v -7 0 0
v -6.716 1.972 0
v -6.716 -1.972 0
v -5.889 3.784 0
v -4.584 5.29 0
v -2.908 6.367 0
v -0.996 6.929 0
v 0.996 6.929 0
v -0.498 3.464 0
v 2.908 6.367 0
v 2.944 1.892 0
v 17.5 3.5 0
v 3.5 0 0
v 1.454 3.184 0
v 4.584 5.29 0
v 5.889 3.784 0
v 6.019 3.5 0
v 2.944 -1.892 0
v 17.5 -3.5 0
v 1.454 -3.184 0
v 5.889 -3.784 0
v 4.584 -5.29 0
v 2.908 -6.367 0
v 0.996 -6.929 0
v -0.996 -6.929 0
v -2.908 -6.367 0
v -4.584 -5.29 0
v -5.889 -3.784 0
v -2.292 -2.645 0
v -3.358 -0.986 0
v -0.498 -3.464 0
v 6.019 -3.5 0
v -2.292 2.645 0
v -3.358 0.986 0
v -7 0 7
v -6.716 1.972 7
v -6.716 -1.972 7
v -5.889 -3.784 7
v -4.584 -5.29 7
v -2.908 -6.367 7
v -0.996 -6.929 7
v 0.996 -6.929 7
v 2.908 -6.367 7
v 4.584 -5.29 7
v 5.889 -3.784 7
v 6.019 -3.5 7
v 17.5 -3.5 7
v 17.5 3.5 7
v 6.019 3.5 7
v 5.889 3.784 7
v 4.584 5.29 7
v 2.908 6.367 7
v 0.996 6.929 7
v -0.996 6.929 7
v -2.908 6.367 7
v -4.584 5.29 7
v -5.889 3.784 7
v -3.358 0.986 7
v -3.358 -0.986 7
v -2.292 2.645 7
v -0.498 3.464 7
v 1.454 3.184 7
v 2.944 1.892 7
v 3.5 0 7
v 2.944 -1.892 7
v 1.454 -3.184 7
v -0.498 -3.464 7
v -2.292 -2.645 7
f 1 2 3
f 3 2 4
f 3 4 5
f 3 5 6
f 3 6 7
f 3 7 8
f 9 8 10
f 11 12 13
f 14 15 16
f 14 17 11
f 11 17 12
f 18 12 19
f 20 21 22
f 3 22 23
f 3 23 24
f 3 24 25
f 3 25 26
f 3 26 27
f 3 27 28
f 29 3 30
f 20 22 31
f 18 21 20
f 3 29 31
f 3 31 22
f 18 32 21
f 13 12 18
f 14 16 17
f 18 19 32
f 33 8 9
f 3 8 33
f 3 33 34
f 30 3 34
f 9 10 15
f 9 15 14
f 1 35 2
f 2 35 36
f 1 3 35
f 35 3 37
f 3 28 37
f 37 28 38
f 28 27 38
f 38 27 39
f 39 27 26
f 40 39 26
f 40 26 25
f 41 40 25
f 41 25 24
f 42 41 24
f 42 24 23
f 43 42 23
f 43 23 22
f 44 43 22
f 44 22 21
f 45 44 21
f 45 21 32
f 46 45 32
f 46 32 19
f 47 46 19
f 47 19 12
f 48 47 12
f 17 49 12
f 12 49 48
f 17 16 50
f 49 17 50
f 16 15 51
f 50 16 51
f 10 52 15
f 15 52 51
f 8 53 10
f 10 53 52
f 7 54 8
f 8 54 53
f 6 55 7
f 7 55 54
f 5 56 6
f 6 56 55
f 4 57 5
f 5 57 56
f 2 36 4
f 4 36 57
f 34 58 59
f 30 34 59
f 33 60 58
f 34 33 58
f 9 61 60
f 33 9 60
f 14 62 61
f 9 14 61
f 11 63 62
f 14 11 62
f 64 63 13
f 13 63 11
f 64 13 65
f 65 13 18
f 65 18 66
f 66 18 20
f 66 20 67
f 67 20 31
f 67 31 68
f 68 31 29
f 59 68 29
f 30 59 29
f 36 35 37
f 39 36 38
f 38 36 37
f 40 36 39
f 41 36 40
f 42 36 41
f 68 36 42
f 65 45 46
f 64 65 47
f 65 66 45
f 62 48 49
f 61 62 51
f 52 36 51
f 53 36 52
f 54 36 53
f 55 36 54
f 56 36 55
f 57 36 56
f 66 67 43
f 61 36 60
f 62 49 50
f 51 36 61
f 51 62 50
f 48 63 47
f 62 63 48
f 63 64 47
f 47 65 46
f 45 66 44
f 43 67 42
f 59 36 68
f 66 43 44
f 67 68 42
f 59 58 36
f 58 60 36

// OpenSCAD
module lever()
{
	scale = 10;
	levelScale = .35;
	width = .7;
	
	union() {
		difference() {
			cylinder(r = scale*levelScale*2, h = width*scale);
			cylinder(r = scale*levelScale, h = width*scale);
		}
		translate([width*scale*1.5,0,width*scale*.5])cube([width*scale*2,width*scale,width*scale], true);
	}
}

lever();
